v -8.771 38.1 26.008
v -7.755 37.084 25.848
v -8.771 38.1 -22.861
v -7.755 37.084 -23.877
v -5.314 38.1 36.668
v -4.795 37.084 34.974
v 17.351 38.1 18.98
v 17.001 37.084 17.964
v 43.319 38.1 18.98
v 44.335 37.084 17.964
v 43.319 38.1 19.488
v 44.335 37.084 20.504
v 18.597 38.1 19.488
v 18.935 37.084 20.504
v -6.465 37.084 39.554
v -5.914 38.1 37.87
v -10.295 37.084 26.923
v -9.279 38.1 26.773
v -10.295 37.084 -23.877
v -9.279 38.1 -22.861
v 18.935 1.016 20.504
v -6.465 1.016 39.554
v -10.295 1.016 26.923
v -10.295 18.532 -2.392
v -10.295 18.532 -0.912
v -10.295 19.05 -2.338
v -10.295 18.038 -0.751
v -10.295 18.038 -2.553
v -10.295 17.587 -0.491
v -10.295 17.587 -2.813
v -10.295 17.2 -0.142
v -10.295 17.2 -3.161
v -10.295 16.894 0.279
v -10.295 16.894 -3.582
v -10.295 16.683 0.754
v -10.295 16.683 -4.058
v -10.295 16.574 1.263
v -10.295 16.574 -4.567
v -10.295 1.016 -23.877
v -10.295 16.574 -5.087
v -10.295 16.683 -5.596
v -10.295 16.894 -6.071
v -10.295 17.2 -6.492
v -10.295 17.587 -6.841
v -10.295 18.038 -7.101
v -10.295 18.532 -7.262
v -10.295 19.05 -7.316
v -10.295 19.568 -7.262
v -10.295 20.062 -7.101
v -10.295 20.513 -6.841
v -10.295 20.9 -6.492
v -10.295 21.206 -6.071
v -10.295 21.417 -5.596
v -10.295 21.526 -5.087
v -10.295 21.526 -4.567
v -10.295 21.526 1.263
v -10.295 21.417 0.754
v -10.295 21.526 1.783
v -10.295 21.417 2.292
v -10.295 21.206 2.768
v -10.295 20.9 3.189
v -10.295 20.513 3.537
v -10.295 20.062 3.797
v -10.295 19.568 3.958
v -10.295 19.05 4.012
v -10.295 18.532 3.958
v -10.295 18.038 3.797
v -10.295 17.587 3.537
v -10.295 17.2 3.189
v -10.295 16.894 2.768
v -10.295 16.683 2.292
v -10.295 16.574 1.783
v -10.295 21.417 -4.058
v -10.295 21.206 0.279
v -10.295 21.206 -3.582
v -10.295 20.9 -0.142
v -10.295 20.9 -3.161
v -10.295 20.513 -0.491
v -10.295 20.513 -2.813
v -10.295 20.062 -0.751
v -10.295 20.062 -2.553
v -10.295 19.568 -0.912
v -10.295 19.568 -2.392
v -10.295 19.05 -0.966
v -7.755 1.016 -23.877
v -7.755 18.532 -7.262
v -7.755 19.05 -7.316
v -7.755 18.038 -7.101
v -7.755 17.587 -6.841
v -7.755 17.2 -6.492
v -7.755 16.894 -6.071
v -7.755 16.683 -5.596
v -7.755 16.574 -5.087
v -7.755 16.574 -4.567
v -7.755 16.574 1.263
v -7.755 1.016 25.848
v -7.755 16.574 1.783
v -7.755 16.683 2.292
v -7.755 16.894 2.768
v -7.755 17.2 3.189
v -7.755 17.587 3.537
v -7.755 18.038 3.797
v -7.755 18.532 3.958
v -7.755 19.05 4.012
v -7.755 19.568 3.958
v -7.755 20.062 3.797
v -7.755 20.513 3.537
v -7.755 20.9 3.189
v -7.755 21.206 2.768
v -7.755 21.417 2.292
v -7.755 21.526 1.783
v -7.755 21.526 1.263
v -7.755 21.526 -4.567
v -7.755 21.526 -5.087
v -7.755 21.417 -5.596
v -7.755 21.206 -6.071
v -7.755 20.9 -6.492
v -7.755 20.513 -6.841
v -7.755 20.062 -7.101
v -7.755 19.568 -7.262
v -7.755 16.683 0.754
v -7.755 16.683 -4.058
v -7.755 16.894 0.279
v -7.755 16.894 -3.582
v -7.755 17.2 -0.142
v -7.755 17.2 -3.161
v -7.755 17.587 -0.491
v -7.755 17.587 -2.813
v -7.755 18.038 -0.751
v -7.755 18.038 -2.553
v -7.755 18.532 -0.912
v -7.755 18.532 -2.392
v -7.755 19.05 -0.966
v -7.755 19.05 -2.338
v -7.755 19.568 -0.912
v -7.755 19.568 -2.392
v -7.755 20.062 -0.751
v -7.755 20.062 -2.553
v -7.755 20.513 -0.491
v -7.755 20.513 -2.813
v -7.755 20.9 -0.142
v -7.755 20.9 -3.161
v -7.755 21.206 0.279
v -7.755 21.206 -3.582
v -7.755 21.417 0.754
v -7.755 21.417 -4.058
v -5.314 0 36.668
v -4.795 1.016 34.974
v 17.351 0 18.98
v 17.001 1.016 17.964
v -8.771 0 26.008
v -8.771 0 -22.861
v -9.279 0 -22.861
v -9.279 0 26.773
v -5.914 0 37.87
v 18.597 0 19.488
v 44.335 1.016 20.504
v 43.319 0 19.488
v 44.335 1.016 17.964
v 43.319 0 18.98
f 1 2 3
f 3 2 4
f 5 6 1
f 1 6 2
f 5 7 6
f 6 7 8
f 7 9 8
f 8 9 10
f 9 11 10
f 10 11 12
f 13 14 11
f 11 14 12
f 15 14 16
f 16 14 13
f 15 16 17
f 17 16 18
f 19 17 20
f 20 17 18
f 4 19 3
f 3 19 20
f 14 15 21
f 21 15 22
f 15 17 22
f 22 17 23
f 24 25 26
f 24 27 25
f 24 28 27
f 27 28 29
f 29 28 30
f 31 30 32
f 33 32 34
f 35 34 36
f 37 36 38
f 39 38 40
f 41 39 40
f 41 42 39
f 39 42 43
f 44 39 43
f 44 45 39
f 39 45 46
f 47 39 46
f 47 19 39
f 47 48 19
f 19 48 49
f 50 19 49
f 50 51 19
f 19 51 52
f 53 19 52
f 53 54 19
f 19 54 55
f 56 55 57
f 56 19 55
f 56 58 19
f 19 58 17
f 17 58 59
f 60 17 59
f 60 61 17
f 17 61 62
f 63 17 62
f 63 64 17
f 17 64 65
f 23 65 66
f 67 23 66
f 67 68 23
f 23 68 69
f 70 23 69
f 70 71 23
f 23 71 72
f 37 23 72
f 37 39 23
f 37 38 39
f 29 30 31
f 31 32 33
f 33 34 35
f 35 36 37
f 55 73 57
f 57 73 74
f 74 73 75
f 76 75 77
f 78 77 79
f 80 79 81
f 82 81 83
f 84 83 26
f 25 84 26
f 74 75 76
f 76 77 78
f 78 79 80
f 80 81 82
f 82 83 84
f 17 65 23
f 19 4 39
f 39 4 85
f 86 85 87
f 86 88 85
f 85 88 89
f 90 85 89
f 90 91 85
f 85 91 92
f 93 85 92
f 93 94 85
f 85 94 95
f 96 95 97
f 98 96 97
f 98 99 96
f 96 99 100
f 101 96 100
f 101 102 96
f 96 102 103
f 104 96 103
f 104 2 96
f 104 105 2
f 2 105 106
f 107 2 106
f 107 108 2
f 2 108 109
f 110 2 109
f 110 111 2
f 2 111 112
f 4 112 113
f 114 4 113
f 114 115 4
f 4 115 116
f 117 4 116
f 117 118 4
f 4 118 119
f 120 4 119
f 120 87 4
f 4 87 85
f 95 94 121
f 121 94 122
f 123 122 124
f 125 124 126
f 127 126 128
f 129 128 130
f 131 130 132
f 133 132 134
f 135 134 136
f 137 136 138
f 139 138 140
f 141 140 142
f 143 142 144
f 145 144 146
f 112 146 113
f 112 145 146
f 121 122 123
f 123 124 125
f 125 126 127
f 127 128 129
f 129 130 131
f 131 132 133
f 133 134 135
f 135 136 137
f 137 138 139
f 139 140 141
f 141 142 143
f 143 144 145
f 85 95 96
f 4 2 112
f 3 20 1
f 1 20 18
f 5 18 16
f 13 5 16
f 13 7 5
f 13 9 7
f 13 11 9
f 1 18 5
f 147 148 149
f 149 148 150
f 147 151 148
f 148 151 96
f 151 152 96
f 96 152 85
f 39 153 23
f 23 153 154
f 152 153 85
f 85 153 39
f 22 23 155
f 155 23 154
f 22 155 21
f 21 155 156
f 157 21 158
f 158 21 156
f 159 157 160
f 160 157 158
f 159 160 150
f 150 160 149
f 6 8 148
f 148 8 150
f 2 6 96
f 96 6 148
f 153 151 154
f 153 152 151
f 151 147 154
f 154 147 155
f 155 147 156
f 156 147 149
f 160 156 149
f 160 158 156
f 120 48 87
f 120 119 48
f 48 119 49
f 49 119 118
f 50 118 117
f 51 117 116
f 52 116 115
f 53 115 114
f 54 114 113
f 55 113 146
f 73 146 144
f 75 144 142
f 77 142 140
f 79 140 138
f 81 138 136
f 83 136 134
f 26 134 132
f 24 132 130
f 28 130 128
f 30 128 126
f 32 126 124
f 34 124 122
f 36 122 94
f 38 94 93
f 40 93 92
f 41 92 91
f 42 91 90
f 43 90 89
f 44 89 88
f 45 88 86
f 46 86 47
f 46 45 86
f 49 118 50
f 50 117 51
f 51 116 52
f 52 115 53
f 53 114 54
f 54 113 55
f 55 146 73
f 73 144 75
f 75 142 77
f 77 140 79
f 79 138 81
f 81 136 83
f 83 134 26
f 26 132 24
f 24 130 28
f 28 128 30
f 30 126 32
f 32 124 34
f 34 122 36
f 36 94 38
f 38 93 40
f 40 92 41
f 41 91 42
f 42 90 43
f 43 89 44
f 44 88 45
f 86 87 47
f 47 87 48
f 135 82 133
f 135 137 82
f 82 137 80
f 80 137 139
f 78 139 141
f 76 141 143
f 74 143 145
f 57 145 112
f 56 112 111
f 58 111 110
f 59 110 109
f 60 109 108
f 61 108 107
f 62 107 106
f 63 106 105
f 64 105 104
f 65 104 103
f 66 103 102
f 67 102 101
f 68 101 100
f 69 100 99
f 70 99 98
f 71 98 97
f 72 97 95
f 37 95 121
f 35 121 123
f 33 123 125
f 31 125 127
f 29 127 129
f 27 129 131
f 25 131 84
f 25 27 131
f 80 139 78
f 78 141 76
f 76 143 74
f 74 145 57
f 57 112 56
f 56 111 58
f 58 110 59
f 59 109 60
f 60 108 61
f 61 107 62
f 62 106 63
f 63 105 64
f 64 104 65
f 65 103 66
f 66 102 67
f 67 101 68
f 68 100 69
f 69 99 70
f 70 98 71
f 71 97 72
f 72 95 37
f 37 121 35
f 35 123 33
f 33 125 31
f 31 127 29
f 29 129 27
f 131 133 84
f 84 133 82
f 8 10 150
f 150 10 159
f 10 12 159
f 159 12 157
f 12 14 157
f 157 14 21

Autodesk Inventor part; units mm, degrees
ref_plane "YZ Plane" through (0, 0, 0) normal (1, 0, 0) x (0, 1, 0)
ref_plane "XZ Plane" through (0, 0, 0) normal (0, 1, 0) x (-1, 0, 0)
ref_plane "XY Plane" through (0, 0, 0) normal (0, 0, 1) x (1, 0, 0)
sketch "Sketch1" plane through (0, 0, 0) normal (0, 1, 0) x (-1, 0, 0)
  line L0 (10.2949, -23.8768) -> (10.2949, 26.9232)
  line L1 (10.2949, 26.9232) -> (6.4648, 39.5536)
  line L2 (6.4648, 39.5536) -> (-18.9352, 20.5036)
  line L3 (-18.9352, 20.5036) -> (-44.3352, 20.5036)
  line L4 (-44.3352, 20.5036) -> (-44.3352, 17.9636)
  line L5 (-44.3352, 17.9636) -> (-17.0011, 17.9636)
  line L6 (-17.0011, 17.9636) -> (4.7948, 34.9742)
  line L7 (4.7948, 34.9742) -> (7.7549, 25.8478)
  line L8 (7.7549, 25.8478) -> (7.7549, -23.8768)
  line L9 (7.7549, -23.8768) -> (10.2949, -23.8768)
  point P0 (0, 0)
  dimension "d0" = 19.05
  dimension "d1" = 25.4
  dimension "d2" = 50.8
  dimension "d3" = 70
  dimension "d4" = 70
  dimension "d5" = 2.54
  dimension "d6" = 2.54
  dimension "d7" = 25.4
extrude "Extrusion1" add sketch "Sketch1" along normal blind 38.1
sketch "Sketch2" plane through (-10.2949, 0, -23.8768) normal (-1, 0, 0) x (0, 0, 1)
  line L0 (19.05, 19.05) -> (25.4, 19.05) construction
  line L1 (25.4, 19.05) -> (25.4, 0) construction
  line L2 (0, 0) -> (50.8, 0) construction
  line L3 (19.05, 19.05) -> (0, 19.05) construction
  line L4 (0, 0) -> (0, 38.1) construction
  point P0 (23.8768, 0)
  dimension "d10" = 19.05
  dimension "d11" = 6.35
  dimension "d12" = 19.05
hole "Hole1" at (-10.2949, 19.05, -4.8268) at (-10.2949, 19.05, 1.5232) direction (1, 0, 0) diameter 4.9784 end through all thread size "1/4-20 UNC" class "2B" standard "ANSI Unified Screw Threads"
chamfer "Chamfer1" distance 1.016 angle 45 20 edges at (-10.2949, 0, 1.5232) (-8.3798, 0, 33.2384) (6.2352, 0, 30.0286) (31.6352, 0, 20.5036) (44.3352, 0, 19.2336) (30.6682, 0, 17.9636) (6.1031, 0, 26.4689) (-6.2749, 0, 30.411) (-7.7549, 0, 0.9855) (-9.0249, 0, -23.8768) (31.6352, 38.1, 20.5036) (44.3352, 38.1, 19.2336) (30.6682, 38.1, 17.9636) (6.2352, 38.1, 30.0286) (6.1031, 38.1, 26.4689) (-6.2749, 38.1, 30.411) (-8.3798, 38.1, 33.2384) (-7.7549, 38.1, 0.9855) (-10.2949, 38.1, 1.5232) (-9.0249, 38.1, -23.8768)
properties part number "Encoder Mount"
